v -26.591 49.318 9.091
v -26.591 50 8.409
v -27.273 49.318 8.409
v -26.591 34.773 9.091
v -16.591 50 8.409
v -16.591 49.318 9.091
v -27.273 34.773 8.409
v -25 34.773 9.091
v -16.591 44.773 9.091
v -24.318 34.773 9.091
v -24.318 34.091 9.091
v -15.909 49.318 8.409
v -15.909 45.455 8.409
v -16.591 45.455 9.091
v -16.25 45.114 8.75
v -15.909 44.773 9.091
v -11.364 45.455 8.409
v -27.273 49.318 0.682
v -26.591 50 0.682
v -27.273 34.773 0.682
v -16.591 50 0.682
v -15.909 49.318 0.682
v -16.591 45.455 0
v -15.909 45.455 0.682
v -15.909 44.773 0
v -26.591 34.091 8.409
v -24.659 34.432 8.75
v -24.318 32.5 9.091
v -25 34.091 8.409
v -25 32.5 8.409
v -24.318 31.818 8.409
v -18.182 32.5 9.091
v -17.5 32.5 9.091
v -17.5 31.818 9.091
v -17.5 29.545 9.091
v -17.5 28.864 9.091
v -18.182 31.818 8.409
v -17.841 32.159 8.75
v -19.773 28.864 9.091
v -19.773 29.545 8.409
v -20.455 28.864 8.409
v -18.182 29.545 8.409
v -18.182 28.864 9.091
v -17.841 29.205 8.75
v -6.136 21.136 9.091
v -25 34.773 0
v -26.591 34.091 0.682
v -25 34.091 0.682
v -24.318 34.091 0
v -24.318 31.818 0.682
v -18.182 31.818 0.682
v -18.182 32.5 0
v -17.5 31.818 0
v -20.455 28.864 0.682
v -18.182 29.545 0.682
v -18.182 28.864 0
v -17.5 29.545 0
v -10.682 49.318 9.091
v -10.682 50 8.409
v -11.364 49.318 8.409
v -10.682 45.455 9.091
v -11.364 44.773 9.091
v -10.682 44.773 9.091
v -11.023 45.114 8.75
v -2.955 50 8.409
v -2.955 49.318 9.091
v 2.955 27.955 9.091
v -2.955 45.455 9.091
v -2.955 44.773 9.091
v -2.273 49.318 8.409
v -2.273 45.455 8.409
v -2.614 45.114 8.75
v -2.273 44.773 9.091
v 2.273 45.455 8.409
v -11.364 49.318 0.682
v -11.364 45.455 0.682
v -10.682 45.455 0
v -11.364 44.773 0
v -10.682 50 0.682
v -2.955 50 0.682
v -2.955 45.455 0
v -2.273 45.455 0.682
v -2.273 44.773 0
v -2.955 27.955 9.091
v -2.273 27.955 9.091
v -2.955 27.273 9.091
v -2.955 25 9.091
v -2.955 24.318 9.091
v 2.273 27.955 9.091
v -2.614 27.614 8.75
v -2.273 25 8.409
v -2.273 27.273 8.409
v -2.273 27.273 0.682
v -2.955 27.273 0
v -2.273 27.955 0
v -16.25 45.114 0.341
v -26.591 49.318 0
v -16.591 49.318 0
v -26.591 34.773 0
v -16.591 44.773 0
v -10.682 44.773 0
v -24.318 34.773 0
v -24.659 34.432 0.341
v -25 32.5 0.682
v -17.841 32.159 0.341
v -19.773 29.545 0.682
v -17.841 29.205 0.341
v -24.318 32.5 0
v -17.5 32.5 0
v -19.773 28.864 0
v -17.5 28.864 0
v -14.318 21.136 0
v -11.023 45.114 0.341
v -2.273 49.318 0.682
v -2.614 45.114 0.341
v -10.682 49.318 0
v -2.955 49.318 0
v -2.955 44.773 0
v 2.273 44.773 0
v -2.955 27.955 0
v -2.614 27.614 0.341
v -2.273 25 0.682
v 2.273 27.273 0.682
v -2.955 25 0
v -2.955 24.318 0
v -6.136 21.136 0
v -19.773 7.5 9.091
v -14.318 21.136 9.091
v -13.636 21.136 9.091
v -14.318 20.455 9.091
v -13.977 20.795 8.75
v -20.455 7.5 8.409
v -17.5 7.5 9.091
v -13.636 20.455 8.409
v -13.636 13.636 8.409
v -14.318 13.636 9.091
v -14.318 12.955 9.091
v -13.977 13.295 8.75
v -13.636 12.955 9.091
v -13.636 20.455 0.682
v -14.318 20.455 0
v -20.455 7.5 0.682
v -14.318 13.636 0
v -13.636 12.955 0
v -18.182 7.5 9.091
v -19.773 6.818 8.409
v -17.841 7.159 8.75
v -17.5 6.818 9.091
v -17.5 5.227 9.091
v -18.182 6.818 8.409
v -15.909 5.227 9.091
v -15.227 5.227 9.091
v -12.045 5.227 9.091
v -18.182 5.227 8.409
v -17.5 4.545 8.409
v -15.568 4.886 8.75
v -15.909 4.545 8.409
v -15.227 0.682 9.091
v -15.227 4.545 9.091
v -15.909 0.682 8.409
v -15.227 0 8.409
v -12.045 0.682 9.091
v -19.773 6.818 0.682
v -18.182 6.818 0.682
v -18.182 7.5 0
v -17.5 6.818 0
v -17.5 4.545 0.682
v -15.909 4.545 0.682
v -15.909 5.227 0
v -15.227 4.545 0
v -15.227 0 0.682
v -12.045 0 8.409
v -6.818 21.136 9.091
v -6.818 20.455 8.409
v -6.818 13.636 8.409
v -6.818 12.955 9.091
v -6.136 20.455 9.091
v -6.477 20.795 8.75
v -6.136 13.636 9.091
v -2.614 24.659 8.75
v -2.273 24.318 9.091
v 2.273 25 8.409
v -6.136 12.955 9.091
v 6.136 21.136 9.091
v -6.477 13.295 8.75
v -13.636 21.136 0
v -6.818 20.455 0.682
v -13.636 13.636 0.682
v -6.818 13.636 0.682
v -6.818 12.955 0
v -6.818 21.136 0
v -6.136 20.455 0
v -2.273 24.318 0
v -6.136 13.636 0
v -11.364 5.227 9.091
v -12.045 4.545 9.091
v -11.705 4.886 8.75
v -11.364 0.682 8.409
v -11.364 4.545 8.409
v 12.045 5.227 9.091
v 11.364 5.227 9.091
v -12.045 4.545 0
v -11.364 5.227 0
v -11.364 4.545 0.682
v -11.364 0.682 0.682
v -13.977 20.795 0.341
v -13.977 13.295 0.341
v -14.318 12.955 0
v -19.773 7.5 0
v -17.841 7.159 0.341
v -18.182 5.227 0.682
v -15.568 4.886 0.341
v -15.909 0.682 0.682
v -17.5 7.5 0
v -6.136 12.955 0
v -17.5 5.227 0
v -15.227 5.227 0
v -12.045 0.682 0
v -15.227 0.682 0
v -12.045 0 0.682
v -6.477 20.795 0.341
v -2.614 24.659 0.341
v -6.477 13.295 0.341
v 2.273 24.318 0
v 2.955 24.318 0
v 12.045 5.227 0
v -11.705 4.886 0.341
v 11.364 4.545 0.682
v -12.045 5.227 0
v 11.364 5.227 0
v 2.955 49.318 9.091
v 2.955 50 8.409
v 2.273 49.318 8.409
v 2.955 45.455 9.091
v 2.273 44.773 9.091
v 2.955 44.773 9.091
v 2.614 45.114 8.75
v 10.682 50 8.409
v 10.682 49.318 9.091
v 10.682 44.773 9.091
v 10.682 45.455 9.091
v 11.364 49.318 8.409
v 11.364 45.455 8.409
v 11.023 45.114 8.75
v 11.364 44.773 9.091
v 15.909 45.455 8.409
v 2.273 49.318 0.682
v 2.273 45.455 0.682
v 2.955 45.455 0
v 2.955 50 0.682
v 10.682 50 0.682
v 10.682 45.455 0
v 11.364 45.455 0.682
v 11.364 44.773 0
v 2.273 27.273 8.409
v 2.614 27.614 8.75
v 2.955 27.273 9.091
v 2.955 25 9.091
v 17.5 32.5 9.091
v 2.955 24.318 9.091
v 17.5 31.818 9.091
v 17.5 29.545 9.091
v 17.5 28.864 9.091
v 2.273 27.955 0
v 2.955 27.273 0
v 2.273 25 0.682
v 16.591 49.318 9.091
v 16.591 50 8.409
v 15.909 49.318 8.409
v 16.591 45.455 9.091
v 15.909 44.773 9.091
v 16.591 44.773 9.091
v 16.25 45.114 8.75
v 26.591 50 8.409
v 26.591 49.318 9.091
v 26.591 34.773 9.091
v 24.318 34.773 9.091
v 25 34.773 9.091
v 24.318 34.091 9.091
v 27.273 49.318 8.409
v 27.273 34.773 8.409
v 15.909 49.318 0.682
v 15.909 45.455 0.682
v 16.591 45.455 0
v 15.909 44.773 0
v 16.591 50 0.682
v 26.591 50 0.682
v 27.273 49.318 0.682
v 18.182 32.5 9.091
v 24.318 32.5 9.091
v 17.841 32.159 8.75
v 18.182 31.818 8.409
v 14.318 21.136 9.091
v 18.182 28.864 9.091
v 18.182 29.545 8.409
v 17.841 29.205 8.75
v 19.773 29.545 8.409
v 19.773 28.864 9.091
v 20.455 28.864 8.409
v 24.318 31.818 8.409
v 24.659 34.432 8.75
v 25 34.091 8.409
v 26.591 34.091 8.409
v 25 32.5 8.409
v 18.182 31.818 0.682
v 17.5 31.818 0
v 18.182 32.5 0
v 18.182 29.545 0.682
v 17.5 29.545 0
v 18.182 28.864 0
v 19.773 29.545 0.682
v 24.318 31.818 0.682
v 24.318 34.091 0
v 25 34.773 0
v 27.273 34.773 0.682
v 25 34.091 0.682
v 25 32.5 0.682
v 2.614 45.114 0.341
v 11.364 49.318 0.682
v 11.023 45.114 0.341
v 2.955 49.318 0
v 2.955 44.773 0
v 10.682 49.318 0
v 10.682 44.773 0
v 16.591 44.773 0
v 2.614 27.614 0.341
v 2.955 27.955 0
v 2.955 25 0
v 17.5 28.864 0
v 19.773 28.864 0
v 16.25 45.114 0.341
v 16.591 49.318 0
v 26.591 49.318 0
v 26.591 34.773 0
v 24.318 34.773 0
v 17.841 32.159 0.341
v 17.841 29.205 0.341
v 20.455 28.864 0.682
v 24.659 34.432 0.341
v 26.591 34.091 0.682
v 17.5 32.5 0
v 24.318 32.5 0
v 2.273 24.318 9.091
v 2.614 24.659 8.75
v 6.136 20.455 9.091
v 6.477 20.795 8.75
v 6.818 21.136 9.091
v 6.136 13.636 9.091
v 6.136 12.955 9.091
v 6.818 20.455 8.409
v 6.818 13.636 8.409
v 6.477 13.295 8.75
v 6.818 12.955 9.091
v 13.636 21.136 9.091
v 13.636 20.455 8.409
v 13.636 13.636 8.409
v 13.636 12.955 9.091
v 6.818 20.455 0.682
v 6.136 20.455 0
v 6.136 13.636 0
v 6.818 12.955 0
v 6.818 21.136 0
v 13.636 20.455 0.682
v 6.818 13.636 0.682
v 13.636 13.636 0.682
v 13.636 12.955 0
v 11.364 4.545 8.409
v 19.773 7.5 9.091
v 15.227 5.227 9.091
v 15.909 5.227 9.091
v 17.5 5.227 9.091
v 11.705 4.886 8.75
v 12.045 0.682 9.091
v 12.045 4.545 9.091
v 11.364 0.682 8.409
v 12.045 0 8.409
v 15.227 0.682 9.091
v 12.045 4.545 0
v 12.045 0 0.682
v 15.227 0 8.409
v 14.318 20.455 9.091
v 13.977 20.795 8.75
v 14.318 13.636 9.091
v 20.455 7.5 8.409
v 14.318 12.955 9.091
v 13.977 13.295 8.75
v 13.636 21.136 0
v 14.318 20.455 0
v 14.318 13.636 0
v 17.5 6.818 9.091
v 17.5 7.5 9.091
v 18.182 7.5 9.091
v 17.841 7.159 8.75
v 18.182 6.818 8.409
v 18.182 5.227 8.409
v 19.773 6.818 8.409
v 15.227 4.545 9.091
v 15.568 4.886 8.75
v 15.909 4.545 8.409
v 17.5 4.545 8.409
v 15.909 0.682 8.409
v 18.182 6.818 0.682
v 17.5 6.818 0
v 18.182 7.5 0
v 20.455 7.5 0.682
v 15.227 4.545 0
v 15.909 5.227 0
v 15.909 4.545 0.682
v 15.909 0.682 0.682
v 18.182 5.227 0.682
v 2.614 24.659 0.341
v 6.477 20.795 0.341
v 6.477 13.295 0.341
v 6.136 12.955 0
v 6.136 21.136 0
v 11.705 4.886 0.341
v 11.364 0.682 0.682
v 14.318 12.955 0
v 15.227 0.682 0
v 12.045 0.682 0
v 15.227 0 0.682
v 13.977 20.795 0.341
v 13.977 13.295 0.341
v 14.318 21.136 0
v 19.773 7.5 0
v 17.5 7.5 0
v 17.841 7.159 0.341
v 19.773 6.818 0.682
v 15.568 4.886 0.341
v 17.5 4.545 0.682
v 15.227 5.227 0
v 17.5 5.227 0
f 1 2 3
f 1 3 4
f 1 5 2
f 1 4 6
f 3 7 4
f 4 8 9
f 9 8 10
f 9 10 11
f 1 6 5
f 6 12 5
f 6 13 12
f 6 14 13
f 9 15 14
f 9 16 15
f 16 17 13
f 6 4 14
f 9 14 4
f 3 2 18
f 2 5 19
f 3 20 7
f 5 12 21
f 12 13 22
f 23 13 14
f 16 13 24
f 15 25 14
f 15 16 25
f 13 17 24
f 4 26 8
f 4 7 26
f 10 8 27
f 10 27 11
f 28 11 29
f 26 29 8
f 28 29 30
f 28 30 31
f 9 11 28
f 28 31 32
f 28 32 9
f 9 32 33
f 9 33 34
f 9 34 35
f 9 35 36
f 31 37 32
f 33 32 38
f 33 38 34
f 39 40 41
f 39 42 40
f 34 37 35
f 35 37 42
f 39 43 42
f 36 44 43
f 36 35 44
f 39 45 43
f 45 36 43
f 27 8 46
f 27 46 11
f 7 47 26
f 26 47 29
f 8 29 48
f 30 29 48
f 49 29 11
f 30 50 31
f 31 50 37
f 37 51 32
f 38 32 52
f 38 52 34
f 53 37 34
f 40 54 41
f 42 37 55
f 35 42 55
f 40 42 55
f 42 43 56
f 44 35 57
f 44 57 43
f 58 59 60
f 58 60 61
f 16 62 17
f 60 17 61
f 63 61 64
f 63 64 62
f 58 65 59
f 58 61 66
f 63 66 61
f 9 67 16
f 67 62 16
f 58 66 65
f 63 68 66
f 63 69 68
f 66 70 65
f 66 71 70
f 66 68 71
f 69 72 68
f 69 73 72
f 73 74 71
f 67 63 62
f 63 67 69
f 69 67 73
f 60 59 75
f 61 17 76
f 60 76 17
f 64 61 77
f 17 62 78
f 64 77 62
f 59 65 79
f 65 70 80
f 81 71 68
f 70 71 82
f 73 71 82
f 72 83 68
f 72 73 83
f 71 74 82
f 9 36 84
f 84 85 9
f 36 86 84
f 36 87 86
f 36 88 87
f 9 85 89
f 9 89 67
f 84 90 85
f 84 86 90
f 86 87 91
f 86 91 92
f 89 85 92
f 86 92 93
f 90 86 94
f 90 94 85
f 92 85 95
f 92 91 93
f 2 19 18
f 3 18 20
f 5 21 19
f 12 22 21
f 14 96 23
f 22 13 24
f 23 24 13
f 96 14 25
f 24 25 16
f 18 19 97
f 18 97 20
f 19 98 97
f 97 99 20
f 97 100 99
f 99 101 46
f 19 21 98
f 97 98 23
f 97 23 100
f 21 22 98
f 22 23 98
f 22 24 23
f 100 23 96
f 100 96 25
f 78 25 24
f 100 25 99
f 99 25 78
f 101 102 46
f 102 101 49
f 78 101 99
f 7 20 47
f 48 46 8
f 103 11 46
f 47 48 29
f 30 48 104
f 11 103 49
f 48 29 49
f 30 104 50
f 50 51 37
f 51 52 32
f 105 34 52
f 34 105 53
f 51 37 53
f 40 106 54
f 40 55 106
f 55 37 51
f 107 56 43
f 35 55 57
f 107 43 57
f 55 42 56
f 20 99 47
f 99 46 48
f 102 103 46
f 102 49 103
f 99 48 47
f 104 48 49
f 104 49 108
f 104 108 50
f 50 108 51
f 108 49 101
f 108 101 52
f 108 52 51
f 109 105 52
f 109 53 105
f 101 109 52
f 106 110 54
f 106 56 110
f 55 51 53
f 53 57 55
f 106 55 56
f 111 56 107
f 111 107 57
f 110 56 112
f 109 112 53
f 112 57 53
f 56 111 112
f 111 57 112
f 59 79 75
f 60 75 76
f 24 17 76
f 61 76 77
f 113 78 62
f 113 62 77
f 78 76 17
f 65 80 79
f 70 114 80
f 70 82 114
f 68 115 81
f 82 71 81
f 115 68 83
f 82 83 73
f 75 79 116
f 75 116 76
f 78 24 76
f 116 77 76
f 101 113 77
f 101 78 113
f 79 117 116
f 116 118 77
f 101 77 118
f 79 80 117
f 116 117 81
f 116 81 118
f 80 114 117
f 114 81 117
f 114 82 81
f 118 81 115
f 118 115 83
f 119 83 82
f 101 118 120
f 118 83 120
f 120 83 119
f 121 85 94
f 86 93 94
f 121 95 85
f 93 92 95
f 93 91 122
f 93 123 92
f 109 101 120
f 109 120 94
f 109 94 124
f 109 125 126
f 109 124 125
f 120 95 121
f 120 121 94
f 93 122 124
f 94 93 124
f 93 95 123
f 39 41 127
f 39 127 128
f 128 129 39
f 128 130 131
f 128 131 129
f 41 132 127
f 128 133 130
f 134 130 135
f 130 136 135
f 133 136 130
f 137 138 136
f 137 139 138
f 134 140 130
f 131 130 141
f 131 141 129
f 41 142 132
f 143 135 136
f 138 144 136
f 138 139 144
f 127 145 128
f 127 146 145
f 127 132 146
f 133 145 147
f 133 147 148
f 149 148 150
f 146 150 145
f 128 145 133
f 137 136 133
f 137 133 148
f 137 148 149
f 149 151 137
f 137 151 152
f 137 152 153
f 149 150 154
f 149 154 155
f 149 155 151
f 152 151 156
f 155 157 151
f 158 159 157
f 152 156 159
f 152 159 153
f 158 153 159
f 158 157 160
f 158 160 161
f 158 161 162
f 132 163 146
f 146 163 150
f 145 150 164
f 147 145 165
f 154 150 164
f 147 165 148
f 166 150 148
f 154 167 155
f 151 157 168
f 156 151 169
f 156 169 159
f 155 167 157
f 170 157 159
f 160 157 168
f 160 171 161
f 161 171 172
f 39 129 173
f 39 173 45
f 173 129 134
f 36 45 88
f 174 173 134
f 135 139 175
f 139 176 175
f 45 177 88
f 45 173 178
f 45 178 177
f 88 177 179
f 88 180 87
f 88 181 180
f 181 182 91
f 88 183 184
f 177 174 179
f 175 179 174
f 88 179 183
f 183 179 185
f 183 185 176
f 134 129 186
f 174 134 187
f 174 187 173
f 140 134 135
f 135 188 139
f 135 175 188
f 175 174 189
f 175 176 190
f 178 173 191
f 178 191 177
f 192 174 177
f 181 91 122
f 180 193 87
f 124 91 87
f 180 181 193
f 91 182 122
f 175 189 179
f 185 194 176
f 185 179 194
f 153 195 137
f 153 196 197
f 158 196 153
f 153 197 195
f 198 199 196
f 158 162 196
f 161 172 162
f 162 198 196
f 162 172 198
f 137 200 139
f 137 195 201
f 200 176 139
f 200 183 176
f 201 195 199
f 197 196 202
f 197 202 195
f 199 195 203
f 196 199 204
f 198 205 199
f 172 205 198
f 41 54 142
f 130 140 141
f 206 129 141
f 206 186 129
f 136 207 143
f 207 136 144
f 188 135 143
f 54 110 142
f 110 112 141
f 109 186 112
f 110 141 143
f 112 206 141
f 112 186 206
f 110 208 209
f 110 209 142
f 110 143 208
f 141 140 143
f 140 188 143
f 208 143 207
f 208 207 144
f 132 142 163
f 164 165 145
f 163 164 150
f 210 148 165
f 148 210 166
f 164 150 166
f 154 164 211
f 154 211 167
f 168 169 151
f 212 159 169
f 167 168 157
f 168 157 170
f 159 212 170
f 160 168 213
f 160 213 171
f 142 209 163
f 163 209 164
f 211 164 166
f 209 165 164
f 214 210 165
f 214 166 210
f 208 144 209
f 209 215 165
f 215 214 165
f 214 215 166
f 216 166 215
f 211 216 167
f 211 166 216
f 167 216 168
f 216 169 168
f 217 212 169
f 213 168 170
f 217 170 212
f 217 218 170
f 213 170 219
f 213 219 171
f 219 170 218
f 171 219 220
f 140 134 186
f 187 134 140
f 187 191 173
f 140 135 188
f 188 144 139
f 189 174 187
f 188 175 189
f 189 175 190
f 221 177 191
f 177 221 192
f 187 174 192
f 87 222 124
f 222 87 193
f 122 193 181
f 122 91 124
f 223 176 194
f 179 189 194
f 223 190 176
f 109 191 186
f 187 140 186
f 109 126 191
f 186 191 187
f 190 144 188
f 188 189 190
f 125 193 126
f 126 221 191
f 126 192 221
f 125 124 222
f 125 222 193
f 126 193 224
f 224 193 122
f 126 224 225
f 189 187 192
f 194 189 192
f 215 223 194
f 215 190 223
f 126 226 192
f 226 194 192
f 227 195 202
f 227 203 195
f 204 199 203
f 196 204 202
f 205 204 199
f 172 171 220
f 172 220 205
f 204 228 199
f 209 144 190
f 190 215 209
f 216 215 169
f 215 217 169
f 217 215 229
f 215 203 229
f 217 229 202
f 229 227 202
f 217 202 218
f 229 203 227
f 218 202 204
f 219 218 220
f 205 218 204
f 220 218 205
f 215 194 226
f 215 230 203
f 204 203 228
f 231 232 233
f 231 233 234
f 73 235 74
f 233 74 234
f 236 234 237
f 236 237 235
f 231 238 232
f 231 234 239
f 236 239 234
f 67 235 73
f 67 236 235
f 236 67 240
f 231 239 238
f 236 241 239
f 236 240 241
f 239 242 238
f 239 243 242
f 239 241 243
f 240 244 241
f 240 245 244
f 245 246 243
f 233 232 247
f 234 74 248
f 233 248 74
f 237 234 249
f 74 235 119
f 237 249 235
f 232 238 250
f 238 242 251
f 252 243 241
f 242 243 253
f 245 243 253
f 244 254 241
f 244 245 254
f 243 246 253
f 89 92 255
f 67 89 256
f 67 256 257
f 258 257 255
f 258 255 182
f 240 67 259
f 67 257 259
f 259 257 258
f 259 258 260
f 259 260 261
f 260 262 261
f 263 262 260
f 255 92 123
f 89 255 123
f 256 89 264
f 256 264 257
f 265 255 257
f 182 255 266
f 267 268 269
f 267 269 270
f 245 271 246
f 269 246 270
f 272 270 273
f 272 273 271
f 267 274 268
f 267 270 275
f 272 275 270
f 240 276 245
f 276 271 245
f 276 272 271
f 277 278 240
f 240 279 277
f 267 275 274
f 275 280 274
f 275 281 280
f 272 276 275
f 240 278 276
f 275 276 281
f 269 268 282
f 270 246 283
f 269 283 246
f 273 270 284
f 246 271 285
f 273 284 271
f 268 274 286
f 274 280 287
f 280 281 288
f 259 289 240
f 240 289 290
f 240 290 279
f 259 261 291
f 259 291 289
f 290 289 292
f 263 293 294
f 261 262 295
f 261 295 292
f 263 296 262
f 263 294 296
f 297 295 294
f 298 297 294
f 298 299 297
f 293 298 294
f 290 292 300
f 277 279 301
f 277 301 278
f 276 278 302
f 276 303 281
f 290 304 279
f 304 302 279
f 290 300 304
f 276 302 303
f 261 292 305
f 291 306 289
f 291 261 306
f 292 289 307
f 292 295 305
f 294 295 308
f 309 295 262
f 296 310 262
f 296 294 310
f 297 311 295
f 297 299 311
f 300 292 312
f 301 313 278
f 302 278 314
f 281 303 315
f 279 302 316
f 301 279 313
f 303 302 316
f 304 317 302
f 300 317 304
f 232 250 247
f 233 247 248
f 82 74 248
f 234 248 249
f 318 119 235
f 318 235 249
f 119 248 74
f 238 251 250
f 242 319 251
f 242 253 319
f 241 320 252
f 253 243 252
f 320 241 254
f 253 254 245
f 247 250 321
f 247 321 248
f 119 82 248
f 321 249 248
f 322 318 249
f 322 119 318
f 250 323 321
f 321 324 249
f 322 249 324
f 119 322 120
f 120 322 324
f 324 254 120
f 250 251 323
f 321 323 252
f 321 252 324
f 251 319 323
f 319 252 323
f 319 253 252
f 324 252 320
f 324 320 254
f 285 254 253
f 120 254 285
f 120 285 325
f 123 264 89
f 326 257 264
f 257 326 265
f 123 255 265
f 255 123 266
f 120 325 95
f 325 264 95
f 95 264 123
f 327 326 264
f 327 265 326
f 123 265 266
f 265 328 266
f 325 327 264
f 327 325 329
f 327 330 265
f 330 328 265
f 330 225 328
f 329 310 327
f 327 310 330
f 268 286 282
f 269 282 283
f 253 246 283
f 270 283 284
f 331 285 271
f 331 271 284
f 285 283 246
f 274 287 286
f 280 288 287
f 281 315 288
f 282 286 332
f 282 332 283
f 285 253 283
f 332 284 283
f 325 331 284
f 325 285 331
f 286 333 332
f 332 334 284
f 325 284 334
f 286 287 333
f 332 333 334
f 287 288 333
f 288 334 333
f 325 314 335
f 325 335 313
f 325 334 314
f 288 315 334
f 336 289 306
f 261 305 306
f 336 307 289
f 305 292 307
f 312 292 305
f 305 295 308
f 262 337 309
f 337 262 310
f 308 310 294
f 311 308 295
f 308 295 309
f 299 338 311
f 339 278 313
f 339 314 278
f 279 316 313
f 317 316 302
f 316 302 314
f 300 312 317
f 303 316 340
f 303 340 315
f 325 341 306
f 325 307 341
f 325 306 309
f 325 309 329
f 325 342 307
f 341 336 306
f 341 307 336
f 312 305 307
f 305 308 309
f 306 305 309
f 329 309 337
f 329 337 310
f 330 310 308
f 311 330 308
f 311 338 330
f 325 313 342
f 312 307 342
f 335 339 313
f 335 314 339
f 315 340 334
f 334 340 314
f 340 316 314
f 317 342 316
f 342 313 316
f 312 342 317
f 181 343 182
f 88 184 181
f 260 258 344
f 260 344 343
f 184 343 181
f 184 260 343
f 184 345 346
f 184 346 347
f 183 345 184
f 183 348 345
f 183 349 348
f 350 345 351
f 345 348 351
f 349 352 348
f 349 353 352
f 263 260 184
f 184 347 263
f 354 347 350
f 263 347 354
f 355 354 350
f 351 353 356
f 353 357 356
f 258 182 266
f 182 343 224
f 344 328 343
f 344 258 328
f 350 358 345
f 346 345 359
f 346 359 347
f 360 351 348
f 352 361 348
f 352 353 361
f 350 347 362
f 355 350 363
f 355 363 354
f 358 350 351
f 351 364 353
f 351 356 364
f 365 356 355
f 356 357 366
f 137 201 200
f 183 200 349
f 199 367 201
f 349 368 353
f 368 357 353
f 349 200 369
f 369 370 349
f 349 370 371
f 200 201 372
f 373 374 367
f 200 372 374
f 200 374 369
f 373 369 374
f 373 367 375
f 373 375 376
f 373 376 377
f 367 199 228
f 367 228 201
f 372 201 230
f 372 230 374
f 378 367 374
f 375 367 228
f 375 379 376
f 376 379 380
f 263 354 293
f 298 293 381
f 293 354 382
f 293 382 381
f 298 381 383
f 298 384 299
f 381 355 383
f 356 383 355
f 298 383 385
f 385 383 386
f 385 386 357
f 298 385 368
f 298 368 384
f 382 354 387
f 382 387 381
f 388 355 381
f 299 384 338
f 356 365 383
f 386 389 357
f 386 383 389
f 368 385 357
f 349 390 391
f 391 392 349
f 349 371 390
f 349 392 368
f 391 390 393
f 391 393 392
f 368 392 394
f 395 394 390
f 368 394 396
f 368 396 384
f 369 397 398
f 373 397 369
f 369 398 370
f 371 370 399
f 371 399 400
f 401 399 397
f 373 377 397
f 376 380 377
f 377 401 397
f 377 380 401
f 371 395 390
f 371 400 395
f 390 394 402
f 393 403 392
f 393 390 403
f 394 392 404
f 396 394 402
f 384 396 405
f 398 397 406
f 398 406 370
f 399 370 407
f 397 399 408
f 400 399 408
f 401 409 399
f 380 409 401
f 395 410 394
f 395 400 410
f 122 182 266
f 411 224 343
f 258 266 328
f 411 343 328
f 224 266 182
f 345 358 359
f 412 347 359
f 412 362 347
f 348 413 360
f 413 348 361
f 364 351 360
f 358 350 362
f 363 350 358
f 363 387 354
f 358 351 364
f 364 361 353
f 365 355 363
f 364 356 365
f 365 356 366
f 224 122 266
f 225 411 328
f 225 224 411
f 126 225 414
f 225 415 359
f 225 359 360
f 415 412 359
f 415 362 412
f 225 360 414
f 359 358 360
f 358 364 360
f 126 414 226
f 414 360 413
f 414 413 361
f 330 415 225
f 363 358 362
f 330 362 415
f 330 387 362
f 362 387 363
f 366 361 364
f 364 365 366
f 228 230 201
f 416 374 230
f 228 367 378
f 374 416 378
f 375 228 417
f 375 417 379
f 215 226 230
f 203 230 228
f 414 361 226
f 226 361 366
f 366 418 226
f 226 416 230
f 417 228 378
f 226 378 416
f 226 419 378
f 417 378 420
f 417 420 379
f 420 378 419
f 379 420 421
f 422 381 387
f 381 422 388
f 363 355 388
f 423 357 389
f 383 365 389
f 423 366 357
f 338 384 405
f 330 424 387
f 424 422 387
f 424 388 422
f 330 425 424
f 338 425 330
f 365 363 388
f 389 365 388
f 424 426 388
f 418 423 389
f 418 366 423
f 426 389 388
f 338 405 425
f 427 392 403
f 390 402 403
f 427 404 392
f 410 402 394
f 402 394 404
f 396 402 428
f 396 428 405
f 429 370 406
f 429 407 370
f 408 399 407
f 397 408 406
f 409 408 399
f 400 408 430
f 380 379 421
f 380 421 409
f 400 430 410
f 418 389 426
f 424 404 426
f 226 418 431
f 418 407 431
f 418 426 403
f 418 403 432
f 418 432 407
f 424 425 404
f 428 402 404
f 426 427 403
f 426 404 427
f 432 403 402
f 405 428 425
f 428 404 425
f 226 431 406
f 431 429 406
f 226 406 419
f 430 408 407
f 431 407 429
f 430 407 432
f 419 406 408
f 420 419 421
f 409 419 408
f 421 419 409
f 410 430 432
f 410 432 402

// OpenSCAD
// OpenAPPA mascot, fast-printing — the silhouette, one solid, chamfered on
// every edge it really has.
//
// The mascot is not invented here. It is the `BEAST` bitmap that draws the
// mark on screen (website/components/Logo.tsx and components/pixel-marks.ts):
// a 24-wide by 22-tall grid, horns on rows 0-1, head on rows 2-13, body on
// rows 14-19, legs and paws on rows 20-21. Where the bitmap shows the
// background through the beast — the two eyes and the nostril pair — there is
// no material, so those read as holes exactly as they do on screen.
//
// This is the print-in-an-evening companion to `openappa.scad`. Same
// bitmap, same size, same thickness; three things taken out, each of them a
// print-time cost rather than part of the mascot:
//
//   1. No per-cell chamfers. In the full model every cell is a separately
//      chamfered block, so the surface is corrugated and each layer's
//      perimeter weaves in and out 24 times across. Without them, neighbouring
//      cells fuse into flat faces and the slicer walks long straight lines.
//      The trade is real: the pixel grid stops reading on the face, and only
//      the silhouette — horns, ears, eyes, mouth, legs — carries the mascot.
//      The chamfer survives everywhere the beast has a real edge: the corners
//      of the outline, the corners of the eyes and the mouth, and the rims
//      where the front and back faces meet the walls. Those cost a handful of
//      short moves and keep it from looking cut out with scissors; a chamfer
//      between two cells of the same limb would cost a groove per column.
//   2. No two-colour split. One body, one filament, one print, no registration
//      between parts and no filament change.
//   3. Laid down, not standing. Face up on its flat back: nine millimetres of
//      layers instead of fifty, and every opening in the bitmap is a
//      through-hole in a flat part rather than something to bridge, so there
//      is nothing to support.
//
// With no per-cell chamfer and no colour boundary the model is what it looks
// like — the lit cells of the bitmap, unioned into one region, cornered, and
// extruded. That is why this file is short where the full model is long: there
// are no blocks to hold apart, so none of its block, core and material
// machinery is needed.
//
// This file lives beside the mesh it produces, in website/public/brand, so
// that the source and everything exported from it ship together. Run the
// commands below from the repository root; the name they write is the name the
// site serves.
//
// Preview:
//   openscad website/public/brand/openappa-fast-printing.scad
//
// Export:
//   openscad --export-format binstl -o website/public/brand/openappa-fast-printing.stl website/public/brand/openappa-fast-printing.scad

/* ------------------------------------------------------------ parameters --- */

mascot_height = 50;   // mm, paws to horn tips; everything else follows

pixel_depth   = 4;    // cells front to back — the same thickness as the full
                      // model. Printed lying down, this costs layers and
                      // nothing else, so it is cheap to keep.

lay_flat      = true; // deliver the mascot face-up on the bed rather than
                      // standing on its paws. Off leaves the full model's
                      // orientation, for comparing the two side by side.

chamfer       = 0.3;  // chamfer, as a fraction of a cell, cut back the same
                      // distance on every edge the beast actually has: the
                      // corners of the outline, the corners of the eyes and
                      // the mouth, and the rims where the front and back faces
                      // meet the walls. At the default that is 0.68 mm, and
                      // all four measure it. What it is never taken off is a
                      // boundary between two cells — that is the corrugation
                      // this variant exists to avoid. 0 leaves every edge
                      // square. Half a cell is the ceiling: at that point two
                      // cuts meet across the mouth, which is one cell tall.

body_color    = "#202124";

/* ------------------------------------------------------------------ grid --- */

// Original BEAST palette: `1` primary body, `3` dim muzzle/paws, `4` eyes,
// `2` nose, and `.` outside background. Here `1` and `3` are one material.
BEAST = [
    ".....11..........11.....",
    ".....11..........11.....",
    "....1111111111111111....",
    "...111111111111111111...",
    "...111111111111111111...",
    "...111111111111111111...",
    "...111444111111444111...",
    "...111444111111444111...",
    "...111444111111444111...",
    "...111111111111111111...",
    "...111111133331111111...",
    "...111111132231111111...",
    "...111111111111111111...",
    "....1111111111111111....",
    ".1111111111111111111111.",
    "111111111111111111111111",
    "111111111111111111111111",
    "111111111111111111111111",
    "111111111111111111111111",
    "111111111111111111111111",
    "11111..1111..1111..11111",
    "33333..3333..3333..33333",
];

GRID_COLS = 24;
GRID_ROWS = 22;

c  = mascot_height / GRID_ROWS;  // one cell, in mm
ch = chamfer * c;                // chamfer, in mm

// Every cut takes `ch` off a corner, and the smallest thing there is to cut is
// one cell — the mouth's height, the width of a horn. Past half a cell the
// cuts from either end meet and the feature is gone rather than chamfered.
assert(chamfer >= 0 && chamfer < 0.5,
       "chamfer must be at least 0 and less than 0.5 of a cell");

// Is there material at this bitmap position? Off-grid reads as empty, so the
// silhouette needs no special casing.
function lit(row, col) =
    row >= 0 && row < GRID_ROWS && col >= 0 && col < GRID_COLS
    && (BEAST[row][col] == "1" || BEAST[row][col] == "3");

/* ----------------------------------------------------------------- parts --- */

// The lit cells as one 2D region. Squares that share an edge union into a
// single polygon, so what comes out is the outline of the beast and the
// outlines of its holes — not 378 separate squares. The bitmap counts rows
// downward from the horns; the model counts up from the paws.
module silhouette() {
    union()
        for (row = [0 : GRID_ROWS - 1], col = [0 : GRID_COLS - 1])
            if (lit(row, col))
                translate([(col + 0.5 - GRID_COLS / 2) * c,
                           (GRID_ROWS - row - 0.5) * c])
                    square([c, c], center = true);
}

// One right triangle per corner of the eyes and the mouth, to be cut away.
//
// A hole's corner is concave for the body, and the sweep below only chamfers
// convex ones, so these have to be taken out by hand. Doing it as an explicit
// cut rather than with a pair of offsets is what keeps `chamfer` free: an
// offset pass has to grow the region before it shrinks it, and growing by half
// a cell shuts the mouth — which is one cell tall — before it can be chamfered
// at all. Nothing here grows anything.
//
// A grid vertex with three lit cells around it is a hole's corner, and the
// empty one says which way the hole opens. The wedge comes off the opposite
// side: legs of `ch` along both edges, hypotenuse across the corner.
module hole_wedges() {
    for (row = [0 : GRID_ROWS], col = [0 : GRID_COLS]) {
        nw = lit(row - 1, col - 1) ? 1 : 0;
        ne = lit(row - 1, col)     ? 1 : 0;
        sw = lit(row, col - 1)     ? 1 : 0;
        se = lit(row, col)         ? 1 : 0;

        if (nw + ne + sw + se == 3) {
            // The empty quadrant is where the hole is; cut back the other way.
            dx = (ne == 0 || se == 0) ? -1 : 1;
            dy = (ne == 0 || nw == 0) ? -1 : 1;
            x  = (col - GRID_COLS / 2) * c;
            y  = (GRID_ROWS - row) * c;

            translate([x, y])
                polygon([[0, 0], [dx * ch, 0], [0, dy * ch]]);
        }
    }
}

// A square bipyramid: an eight-sided tool whose faces all sit at 45 degrees.
// Its equator is a diamond, its apexes are `s` above and below.
module chamfer_tool(s) {
    union() {
        cylinder(r1 = s, r2 = 0, h = s, $fn = 4);
        mirror([0, 0, 1]) cylinder(r1 = s, r2 = 0, h = s, $fn = 4);
    }
}

// Standing: paws at z = 0, spine on x = 0, stack centred on y.
//
// Sweeping the tool over an undersized prism chamfers every edge of that prism
// at once — the equator's diamond takes the vertical corners, the two apexes
// take the front and back rims. Undersized by exactly `ch` in all three
// directions, so the sweep returns the beast to its stated size.
//
// Shrinking and regrowing is a morphological opening, and an opening does not
// give the region back exactly — it rounds off small features and it lets the
// holes drift. Intersecting the sweep with a prism of the plain silhouette
// pins the holes back to their nominal size; the sweep only ever removes
// material, so everywhere else the two agree and the intersection is free.
//
// `convexity` is not decoration. Preview draws with OpenCSG, which peels a
// fixed number of depth layers, and a sight line across this beast crosses far
// more surfaces than the default allows — legs, ears, the far wall. Left at
// the default the preview shows a handful of stray blocks and the model looks
// broken until you press F6. It changes nothing about the geometry: preview
// and render agree, and the exported solid is the same to the last cubic
// micron.
module mascot_solid() {
    rotate([90, 0, 0])
        if (ch > 0)
            difference() {
                intersection() {
                    linear_extrude(height = pixel_depth * c, center = true, convexity = 10)
                        silhouette();

                    minkowski() {
                        linear_extrude(height = pixel_depth * c - 2 * ch, center = true, convexity = 10)
                            offset(delta = -ch)
                                silhouette();
                        chamfer_tool(ch);
                    }
                }

                // Through the whole depth and out both faces, so the cut is
                // one clean plane rather than something that stops inside.
                linear_extrude(height = pixel_depth * c + 4 * ch, center = true, convexity = 10)
                    hole_wedges();
            }
        else
            linear_extrude(height = pixel_depth * c, center = true, convexity = 10)
                silhouette();
}

// Face up, back on the bed. +90 about X sends the model's -y — the back —
// downward; the translate is outside the rotate, so it moves the already
// turned part onto z = 0 and into +y.
module orient() {
    if (lay_flat)
        translate([0, mascot_height, pixel_depth * c / 2])
            rotate([90, 0, 0])
                children();
    else
        children();
}

module openappa_mascot() {
    orient() color(body_color) mascot_solid();
}

openappa_mascot();
